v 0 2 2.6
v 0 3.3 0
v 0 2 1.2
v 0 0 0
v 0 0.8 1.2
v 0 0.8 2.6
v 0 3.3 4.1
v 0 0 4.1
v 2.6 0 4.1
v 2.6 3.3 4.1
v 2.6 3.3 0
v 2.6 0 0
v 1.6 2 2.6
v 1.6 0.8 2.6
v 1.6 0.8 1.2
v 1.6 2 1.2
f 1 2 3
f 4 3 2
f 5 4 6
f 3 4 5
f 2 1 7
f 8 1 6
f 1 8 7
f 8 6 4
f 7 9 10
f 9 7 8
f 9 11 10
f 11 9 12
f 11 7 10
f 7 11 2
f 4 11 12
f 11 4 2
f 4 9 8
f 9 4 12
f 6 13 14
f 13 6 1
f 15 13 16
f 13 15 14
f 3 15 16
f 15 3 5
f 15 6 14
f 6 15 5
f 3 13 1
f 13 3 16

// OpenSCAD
difference(){
cube([2.4+0.2,3.1+0.2,1.6+1.2+1.3]);
translate([0,0.8,1.2])
cube([1.6,1.2,1.4]);
}
